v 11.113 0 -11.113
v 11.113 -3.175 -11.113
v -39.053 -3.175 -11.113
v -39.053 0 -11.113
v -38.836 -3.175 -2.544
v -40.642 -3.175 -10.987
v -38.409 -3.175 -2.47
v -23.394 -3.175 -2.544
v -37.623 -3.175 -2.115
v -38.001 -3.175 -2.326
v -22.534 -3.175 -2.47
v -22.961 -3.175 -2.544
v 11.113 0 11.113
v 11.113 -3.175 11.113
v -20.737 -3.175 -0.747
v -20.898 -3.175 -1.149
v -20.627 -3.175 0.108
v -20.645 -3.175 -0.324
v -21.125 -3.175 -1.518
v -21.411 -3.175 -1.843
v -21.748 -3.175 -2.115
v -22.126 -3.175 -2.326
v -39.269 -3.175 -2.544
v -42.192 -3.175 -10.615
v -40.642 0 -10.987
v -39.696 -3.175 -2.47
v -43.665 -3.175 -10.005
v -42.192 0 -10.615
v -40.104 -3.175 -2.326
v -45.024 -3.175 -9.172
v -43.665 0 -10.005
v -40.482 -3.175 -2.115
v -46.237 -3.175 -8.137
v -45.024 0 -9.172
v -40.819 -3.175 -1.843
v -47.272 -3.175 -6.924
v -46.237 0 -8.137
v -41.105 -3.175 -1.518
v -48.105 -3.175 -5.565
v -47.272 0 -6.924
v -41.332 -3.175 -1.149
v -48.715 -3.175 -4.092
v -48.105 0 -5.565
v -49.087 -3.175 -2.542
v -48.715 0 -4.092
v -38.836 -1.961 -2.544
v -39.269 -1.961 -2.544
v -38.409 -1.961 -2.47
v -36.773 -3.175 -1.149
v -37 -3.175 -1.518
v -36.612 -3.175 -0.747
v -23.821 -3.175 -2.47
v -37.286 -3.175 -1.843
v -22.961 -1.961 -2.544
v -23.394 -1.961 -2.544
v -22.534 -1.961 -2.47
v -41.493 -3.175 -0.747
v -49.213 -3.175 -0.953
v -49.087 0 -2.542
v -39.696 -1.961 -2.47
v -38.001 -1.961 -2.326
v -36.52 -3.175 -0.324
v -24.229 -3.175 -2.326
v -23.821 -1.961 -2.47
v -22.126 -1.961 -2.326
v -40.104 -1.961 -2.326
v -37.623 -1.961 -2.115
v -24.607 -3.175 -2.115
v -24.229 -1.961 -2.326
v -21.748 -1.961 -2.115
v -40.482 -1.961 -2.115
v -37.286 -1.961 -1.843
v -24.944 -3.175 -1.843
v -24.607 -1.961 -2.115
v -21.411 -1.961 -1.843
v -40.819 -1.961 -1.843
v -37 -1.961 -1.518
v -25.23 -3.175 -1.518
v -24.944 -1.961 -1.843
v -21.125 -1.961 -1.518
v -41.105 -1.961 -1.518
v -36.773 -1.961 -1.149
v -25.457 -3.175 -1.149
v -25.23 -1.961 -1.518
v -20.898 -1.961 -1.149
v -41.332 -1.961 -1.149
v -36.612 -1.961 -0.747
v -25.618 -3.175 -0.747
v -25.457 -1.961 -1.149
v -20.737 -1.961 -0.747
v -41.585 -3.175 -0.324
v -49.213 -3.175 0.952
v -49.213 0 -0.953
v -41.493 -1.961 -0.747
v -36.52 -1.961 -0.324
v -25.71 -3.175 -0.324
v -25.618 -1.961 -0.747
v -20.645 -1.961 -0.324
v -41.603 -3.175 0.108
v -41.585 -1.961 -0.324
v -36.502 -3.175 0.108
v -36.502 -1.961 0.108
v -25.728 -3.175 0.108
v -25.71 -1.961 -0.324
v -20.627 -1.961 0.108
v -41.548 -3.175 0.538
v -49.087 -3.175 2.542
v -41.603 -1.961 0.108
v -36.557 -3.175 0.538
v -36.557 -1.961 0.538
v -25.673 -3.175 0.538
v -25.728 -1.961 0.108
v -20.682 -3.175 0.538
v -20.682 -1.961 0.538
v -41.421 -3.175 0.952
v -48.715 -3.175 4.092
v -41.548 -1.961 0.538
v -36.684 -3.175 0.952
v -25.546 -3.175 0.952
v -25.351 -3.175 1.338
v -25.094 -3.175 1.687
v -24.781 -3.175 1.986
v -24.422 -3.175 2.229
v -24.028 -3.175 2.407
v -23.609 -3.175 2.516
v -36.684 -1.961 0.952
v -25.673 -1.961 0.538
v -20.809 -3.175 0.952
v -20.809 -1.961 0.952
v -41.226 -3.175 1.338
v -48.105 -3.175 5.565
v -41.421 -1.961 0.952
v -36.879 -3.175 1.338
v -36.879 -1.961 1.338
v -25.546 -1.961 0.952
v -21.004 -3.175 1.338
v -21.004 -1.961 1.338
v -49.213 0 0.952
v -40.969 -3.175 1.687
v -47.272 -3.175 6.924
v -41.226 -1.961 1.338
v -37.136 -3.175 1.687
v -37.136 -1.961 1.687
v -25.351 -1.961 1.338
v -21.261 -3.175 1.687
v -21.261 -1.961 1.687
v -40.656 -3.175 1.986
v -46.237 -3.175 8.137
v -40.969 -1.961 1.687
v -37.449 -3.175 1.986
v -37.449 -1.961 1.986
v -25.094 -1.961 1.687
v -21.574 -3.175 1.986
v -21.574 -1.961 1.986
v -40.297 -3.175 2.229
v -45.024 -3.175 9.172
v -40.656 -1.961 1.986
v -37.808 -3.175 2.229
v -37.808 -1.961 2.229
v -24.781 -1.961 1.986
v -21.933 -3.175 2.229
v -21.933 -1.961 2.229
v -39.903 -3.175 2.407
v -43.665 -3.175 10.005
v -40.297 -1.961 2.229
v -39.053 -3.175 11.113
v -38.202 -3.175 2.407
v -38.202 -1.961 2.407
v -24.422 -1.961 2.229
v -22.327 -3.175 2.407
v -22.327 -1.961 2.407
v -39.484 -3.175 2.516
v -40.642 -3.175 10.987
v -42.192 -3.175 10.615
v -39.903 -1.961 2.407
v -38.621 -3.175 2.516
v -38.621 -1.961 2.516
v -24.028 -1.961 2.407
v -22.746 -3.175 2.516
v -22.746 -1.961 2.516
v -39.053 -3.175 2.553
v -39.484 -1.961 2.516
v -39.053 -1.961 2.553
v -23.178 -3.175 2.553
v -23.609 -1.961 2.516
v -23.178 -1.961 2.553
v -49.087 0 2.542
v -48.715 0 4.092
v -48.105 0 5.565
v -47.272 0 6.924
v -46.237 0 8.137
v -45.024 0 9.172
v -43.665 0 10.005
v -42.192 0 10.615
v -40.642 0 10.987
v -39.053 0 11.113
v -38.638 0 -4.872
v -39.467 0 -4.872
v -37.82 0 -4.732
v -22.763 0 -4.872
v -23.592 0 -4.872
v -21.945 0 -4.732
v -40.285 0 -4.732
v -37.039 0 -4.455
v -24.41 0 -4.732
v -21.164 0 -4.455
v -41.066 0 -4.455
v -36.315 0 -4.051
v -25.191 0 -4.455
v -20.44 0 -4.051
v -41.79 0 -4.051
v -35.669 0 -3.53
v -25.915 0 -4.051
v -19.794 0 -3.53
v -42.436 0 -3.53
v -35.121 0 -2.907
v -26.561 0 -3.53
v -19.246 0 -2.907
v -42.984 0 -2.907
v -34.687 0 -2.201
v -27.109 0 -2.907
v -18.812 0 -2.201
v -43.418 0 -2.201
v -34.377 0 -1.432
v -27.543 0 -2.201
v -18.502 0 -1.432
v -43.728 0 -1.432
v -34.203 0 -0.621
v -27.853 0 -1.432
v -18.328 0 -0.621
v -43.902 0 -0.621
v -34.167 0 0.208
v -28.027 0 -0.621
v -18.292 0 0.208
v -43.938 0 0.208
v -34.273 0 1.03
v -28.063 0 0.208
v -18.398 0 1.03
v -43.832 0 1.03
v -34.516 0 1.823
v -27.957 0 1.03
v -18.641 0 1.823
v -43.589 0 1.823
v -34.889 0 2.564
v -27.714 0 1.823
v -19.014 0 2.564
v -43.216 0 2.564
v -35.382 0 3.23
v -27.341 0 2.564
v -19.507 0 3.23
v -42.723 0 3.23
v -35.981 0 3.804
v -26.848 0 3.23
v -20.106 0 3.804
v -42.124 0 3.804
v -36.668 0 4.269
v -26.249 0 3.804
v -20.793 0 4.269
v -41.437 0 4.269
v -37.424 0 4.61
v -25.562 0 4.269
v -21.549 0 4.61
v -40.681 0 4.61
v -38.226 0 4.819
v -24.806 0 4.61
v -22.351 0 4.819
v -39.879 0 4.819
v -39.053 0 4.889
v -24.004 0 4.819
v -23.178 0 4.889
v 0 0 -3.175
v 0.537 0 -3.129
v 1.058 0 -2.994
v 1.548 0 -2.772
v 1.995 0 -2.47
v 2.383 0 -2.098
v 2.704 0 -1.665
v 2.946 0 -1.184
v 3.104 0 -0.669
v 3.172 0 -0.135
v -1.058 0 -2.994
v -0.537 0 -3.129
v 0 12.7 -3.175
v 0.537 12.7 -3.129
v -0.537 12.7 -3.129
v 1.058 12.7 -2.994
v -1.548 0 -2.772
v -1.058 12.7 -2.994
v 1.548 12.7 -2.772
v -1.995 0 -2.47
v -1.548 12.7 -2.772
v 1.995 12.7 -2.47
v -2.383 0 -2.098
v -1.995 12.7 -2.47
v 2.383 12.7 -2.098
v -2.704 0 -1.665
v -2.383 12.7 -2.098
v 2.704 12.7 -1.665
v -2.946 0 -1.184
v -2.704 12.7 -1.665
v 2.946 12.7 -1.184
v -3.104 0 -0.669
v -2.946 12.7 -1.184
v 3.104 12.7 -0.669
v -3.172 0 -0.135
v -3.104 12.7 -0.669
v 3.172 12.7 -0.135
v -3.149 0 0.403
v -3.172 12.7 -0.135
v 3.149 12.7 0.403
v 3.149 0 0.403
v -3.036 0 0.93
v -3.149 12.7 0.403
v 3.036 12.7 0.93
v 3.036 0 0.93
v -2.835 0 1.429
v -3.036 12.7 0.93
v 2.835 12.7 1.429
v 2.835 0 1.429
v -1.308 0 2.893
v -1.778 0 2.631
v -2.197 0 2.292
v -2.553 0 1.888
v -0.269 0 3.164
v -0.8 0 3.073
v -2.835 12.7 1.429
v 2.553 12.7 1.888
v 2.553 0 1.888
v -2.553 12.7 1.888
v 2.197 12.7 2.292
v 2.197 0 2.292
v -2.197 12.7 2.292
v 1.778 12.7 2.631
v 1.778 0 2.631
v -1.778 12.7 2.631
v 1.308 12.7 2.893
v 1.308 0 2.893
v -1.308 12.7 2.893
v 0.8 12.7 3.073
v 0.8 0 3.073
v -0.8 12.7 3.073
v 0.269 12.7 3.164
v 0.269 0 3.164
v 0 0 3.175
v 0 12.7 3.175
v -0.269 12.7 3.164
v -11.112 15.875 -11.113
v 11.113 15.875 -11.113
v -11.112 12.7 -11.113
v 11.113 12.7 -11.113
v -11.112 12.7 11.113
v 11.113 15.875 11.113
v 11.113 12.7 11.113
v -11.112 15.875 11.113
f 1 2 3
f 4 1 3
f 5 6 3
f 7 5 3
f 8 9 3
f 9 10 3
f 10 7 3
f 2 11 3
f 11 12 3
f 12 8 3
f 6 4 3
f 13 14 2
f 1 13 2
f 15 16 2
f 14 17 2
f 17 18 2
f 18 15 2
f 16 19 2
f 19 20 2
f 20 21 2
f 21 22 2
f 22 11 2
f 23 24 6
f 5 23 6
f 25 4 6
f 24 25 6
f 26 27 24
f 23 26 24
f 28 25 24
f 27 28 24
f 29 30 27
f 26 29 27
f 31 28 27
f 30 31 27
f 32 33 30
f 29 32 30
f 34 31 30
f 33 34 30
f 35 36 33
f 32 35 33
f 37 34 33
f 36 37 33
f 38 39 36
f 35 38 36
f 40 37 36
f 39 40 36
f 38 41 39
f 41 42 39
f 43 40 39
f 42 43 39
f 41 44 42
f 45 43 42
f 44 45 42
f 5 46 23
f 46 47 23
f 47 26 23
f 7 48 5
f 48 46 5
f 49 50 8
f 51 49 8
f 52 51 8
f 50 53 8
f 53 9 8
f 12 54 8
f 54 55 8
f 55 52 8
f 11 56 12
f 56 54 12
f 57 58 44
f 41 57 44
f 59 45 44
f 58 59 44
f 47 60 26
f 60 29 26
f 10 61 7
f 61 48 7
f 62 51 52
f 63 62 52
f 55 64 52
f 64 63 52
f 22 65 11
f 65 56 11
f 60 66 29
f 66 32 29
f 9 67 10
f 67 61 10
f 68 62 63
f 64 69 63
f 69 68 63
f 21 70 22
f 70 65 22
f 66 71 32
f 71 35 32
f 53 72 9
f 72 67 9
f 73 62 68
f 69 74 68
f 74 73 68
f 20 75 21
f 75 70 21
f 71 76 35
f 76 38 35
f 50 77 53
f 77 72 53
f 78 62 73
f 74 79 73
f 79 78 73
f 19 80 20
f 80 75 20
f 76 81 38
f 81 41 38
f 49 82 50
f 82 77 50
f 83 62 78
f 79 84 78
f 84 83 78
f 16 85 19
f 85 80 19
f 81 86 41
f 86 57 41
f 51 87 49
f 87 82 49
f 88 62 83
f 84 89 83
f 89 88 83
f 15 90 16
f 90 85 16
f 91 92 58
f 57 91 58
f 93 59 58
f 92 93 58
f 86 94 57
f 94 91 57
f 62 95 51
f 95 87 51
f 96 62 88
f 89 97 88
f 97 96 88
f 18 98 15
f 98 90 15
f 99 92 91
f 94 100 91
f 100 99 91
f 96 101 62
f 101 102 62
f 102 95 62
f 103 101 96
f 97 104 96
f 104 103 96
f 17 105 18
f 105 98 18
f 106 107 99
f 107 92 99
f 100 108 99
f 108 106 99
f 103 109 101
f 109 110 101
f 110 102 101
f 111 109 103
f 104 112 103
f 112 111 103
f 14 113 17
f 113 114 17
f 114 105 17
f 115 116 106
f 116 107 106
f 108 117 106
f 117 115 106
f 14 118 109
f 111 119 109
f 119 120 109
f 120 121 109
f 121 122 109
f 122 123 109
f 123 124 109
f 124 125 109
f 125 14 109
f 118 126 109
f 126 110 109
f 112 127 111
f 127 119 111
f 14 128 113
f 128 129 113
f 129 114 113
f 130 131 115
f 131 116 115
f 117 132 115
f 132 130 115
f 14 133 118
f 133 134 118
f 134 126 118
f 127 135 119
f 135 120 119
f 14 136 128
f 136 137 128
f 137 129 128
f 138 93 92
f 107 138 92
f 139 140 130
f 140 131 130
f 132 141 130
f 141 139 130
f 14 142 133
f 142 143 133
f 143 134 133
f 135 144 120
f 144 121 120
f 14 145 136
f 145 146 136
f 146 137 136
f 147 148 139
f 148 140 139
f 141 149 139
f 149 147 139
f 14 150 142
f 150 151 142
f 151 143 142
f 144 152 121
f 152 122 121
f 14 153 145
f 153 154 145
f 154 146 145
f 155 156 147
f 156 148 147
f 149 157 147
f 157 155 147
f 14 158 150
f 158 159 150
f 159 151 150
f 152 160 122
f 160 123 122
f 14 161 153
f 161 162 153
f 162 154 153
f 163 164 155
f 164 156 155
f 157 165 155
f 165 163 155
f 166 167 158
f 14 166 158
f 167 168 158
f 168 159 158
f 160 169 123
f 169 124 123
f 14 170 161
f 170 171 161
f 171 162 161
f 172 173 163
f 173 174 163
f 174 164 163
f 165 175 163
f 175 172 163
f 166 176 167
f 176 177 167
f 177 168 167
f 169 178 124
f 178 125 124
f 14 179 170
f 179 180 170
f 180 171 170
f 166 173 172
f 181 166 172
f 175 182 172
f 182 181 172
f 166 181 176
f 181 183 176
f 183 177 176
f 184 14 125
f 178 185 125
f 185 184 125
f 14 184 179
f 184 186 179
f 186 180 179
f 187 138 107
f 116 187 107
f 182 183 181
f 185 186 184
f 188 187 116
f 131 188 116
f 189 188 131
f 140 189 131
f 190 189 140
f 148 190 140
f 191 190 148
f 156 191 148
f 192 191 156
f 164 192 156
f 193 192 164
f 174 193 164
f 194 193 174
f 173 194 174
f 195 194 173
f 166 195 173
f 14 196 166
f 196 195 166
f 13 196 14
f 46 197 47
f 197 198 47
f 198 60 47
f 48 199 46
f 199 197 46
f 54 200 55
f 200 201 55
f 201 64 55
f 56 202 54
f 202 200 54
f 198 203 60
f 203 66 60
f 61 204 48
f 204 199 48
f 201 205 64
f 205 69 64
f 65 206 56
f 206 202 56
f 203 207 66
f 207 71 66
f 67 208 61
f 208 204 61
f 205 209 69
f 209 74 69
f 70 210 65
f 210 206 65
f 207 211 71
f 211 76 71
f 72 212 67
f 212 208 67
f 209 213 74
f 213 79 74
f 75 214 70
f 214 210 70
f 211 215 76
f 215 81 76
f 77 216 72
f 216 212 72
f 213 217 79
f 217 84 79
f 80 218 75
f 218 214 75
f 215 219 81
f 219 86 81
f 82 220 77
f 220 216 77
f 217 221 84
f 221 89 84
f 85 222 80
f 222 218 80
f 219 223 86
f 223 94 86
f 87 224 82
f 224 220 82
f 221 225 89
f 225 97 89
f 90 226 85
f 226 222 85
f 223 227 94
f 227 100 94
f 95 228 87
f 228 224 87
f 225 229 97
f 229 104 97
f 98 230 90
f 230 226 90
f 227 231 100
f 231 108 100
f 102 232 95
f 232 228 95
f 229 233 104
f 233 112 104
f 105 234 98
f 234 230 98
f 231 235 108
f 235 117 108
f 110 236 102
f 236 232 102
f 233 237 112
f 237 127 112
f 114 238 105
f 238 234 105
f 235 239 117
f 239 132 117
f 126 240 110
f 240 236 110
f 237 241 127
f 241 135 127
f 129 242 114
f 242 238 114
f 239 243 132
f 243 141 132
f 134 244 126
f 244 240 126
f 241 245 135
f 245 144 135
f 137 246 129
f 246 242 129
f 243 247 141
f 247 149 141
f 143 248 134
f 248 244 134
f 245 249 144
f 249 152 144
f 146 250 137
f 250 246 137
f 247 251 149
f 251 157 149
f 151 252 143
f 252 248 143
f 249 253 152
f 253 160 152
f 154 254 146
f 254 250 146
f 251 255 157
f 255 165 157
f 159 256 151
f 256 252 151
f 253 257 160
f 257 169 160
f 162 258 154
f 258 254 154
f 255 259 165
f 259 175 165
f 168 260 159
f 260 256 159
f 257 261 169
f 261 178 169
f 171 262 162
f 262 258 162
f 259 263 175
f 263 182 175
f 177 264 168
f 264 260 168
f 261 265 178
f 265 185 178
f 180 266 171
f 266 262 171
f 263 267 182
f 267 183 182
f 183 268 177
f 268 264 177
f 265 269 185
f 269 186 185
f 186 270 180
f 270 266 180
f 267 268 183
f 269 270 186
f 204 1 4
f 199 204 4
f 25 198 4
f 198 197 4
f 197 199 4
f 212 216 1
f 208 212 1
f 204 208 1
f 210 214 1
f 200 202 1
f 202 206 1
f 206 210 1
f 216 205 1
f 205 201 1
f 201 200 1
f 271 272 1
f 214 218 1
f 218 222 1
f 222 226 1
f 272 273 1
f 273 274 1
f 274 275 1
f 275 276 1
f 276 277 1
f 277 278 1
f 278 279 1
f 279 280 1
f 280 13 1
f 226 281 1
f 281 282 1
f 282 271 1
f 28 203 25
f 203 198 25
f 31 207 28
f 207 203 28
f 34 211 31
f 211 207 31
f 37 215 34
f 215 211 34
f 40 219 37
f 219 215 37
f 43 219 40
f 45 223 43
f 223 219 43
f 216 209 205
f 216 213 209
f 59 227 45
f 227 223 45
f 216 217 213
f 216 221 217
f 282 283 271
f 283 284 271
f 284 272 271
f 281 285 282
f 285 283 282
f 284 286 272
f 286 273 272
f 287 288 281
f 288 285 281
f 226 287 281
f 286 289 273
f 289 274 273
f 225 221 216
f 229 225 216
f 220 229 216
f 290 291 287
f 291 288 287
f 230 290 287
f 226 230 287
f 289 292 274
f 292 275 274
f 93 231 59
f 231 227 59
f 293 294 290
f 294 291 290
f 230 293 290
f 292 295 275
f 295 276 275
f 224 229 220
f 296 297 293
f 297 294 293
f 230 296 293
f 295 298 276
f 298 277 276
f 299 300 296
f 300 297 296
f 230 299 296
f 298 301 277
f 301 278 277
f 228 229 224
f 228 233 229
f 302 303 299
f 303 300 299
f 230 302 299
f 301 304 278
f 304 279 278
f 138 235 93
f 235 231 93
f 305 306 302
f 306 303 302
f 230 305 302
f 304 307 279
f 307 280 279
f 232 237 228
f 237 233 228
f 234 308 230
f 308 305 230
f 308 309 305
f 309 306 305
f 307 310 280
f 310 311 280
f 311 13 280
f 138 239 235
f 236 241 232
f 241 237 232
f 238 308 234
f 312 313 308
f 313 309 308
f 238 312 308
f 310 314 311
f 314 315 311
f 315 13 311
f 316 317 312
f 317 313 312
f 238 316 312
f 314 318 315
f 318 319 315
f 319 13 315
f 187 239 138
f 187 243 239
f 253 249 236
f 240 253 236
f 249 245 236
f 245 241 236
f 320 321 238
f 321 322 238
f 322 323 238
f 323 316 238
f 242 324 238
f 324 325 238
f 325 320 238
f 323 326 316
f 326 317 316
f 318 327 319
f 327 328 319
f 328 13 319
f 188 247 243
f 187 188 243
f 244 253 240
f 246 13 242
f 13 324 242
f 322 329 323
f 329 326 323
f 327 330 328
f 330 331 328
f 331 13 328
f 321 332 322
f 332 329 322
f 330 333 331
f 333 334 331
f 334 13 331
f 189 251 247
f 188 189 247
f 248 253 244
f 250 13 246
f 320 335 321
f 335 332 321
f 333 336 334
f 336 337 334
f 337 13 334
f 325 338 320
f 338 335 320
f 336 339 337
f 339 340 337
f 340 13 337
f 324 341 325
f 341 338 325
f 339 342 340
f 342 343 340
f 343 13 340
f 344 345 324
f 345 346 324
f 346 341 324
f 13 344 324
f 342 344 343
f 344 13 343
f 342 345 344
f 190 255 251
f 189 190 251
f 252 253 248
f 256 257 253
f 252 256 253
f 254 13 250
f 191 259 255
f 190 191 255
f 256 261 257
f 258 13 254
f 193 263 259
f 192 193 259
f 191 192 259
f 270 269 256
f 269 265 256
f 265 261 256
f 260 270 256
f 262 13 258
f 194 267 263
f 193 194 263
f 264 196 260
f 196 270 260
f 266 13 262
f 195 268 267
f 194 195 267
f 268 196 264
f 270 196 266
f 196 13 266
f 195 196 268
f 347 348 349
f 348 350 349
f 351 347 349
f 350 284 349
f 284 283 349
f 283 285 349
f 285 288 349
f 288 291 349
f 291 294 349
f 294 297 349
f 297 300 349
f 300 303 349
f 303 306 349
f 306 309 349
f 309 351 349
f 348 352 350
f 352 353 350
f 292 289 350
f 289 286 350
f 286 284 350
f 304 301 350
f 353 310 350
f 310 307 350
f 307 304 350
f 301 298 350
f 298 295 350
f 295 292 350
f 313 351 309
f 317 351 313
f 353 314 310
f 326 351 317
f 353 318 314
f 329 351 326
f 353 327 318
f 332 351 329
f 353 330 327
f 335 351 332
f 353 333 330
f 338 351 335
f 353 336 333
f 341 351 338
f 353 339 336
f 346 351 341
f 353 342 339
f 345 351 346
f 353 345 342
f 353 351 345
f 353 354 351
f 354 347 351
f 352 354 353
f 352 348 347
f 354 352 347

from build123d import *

# Parameters (mm, degrees)
SKETCH1_R                                  = 3.175
BOSS_EXTRUDE1_DEPTH                        = 12.7
SKETCH2_W                                  = 22.225
SKETCH2_H                                  = 22.225
BOSS_EXTRUDE2_DEPTH                        = 3.175
BOSS_EXTRUDE3_DEPTH                        = 3.175
CSK_FOR_10_FLAT_HEAD_MACHINE_SCREW_2_COUNT = 2
CSK_FOR_10_FLAT_HEAD_MACHINE_SCREW_2_PITCH = 15.875


with BuildPart() as part:
    # Sketch1 → Boss-Extrude1 (new body)
    with BuildSketch(Plane(origin=(0, 0, 0), x_dir=(1, 0, 0), z_dir=(0, 1, 0))):
        Circle(SKETCH1_R)
    extrude(amount=BOSS_EXTRUDE1_DEPTH)

    # Sketch2 → Boss-Extrude2 (add)
    with BuildSketch(Plane(origin=(0, 12.7, 0), x_dir=(1, 0, 0), z_dir=(0, 1, 0))):
        Rectangle(SKETCH2_W, SKETCH2_H)
    boss_extrude2 = extrude(amount=BOSS_EXTRUDE2_DEPTH)

    # Mirror1: Boss-Extrude2 across plane
    add(boss_extrude2.mirror(Plane(origin=(0, 6.35, 0), x_dir=(0, 0, 1), z_dir=(0, -1, 0))))

    # Sketch3 → Boss-Extrude3 (add)
    with BuildSketch(Plane.XZ.offset(3.175)):
        with BuildLine():
            Line((-11.1125, -11.1125), (-39.0525, -11.1125))
            ThreePointArc((-39.0525, -11.1125), (-46.236704897, -8.136704897), (-49.2125, -0.9525))
            Line((-49.2125, -0.9525), (-49.2125, 0.9525))
            ThreePointArc((-49.2125, 0.9525), (-46.236704897, 8.136704897), (-39.0525, 11.1125))
            Line((-39.0525, 11.1125), (-11.1125, 11.1125))
            Line((-11.1125, 11.1125), (-11.1125, -11.1125))
        make_face()
    extrude(amount=-BOSS_EXTRUDE3_DEPTH)

    # Sketch6 → CSK for #10 Flat Head Machine Screw (100)1 (revolve, cut)
    with BuildSketch(Plane(origin=(-39.0525, 0, 0), x_dir=(0, 0, 1), z_dir=(1, 0, 0))):
        Polygon((0, 0), (0, 3.175), (2.5527, 3.175), (2.5527, 1.960808018), (4.8895, 0), align=None)
    csk_for_10_flat_head_machine_screw_100 = revolve(axis=Axis((-39.0525, 6.35, 0), (0, -1, 0)), mode=Mode.SUBTRACT)

    # CSK for _10 Flat Head Machine Screw  2: CSK for #10 Flat Head Machine Screw (100)1 ×2
    with Locations(*[(i * CSK_FOR_10_FLAT_HEAD_MACHINE_SCREW_2_PITCH, 0, 0) for i in range(1, CSK_FOR_10_FLAT_HEAD_MACHINE_SCREW_2_COUNT)]):
        add(csk_for_10_flat_head_machine_screw_100, mode=Mode.SUBTRACT)


solid = part.part
